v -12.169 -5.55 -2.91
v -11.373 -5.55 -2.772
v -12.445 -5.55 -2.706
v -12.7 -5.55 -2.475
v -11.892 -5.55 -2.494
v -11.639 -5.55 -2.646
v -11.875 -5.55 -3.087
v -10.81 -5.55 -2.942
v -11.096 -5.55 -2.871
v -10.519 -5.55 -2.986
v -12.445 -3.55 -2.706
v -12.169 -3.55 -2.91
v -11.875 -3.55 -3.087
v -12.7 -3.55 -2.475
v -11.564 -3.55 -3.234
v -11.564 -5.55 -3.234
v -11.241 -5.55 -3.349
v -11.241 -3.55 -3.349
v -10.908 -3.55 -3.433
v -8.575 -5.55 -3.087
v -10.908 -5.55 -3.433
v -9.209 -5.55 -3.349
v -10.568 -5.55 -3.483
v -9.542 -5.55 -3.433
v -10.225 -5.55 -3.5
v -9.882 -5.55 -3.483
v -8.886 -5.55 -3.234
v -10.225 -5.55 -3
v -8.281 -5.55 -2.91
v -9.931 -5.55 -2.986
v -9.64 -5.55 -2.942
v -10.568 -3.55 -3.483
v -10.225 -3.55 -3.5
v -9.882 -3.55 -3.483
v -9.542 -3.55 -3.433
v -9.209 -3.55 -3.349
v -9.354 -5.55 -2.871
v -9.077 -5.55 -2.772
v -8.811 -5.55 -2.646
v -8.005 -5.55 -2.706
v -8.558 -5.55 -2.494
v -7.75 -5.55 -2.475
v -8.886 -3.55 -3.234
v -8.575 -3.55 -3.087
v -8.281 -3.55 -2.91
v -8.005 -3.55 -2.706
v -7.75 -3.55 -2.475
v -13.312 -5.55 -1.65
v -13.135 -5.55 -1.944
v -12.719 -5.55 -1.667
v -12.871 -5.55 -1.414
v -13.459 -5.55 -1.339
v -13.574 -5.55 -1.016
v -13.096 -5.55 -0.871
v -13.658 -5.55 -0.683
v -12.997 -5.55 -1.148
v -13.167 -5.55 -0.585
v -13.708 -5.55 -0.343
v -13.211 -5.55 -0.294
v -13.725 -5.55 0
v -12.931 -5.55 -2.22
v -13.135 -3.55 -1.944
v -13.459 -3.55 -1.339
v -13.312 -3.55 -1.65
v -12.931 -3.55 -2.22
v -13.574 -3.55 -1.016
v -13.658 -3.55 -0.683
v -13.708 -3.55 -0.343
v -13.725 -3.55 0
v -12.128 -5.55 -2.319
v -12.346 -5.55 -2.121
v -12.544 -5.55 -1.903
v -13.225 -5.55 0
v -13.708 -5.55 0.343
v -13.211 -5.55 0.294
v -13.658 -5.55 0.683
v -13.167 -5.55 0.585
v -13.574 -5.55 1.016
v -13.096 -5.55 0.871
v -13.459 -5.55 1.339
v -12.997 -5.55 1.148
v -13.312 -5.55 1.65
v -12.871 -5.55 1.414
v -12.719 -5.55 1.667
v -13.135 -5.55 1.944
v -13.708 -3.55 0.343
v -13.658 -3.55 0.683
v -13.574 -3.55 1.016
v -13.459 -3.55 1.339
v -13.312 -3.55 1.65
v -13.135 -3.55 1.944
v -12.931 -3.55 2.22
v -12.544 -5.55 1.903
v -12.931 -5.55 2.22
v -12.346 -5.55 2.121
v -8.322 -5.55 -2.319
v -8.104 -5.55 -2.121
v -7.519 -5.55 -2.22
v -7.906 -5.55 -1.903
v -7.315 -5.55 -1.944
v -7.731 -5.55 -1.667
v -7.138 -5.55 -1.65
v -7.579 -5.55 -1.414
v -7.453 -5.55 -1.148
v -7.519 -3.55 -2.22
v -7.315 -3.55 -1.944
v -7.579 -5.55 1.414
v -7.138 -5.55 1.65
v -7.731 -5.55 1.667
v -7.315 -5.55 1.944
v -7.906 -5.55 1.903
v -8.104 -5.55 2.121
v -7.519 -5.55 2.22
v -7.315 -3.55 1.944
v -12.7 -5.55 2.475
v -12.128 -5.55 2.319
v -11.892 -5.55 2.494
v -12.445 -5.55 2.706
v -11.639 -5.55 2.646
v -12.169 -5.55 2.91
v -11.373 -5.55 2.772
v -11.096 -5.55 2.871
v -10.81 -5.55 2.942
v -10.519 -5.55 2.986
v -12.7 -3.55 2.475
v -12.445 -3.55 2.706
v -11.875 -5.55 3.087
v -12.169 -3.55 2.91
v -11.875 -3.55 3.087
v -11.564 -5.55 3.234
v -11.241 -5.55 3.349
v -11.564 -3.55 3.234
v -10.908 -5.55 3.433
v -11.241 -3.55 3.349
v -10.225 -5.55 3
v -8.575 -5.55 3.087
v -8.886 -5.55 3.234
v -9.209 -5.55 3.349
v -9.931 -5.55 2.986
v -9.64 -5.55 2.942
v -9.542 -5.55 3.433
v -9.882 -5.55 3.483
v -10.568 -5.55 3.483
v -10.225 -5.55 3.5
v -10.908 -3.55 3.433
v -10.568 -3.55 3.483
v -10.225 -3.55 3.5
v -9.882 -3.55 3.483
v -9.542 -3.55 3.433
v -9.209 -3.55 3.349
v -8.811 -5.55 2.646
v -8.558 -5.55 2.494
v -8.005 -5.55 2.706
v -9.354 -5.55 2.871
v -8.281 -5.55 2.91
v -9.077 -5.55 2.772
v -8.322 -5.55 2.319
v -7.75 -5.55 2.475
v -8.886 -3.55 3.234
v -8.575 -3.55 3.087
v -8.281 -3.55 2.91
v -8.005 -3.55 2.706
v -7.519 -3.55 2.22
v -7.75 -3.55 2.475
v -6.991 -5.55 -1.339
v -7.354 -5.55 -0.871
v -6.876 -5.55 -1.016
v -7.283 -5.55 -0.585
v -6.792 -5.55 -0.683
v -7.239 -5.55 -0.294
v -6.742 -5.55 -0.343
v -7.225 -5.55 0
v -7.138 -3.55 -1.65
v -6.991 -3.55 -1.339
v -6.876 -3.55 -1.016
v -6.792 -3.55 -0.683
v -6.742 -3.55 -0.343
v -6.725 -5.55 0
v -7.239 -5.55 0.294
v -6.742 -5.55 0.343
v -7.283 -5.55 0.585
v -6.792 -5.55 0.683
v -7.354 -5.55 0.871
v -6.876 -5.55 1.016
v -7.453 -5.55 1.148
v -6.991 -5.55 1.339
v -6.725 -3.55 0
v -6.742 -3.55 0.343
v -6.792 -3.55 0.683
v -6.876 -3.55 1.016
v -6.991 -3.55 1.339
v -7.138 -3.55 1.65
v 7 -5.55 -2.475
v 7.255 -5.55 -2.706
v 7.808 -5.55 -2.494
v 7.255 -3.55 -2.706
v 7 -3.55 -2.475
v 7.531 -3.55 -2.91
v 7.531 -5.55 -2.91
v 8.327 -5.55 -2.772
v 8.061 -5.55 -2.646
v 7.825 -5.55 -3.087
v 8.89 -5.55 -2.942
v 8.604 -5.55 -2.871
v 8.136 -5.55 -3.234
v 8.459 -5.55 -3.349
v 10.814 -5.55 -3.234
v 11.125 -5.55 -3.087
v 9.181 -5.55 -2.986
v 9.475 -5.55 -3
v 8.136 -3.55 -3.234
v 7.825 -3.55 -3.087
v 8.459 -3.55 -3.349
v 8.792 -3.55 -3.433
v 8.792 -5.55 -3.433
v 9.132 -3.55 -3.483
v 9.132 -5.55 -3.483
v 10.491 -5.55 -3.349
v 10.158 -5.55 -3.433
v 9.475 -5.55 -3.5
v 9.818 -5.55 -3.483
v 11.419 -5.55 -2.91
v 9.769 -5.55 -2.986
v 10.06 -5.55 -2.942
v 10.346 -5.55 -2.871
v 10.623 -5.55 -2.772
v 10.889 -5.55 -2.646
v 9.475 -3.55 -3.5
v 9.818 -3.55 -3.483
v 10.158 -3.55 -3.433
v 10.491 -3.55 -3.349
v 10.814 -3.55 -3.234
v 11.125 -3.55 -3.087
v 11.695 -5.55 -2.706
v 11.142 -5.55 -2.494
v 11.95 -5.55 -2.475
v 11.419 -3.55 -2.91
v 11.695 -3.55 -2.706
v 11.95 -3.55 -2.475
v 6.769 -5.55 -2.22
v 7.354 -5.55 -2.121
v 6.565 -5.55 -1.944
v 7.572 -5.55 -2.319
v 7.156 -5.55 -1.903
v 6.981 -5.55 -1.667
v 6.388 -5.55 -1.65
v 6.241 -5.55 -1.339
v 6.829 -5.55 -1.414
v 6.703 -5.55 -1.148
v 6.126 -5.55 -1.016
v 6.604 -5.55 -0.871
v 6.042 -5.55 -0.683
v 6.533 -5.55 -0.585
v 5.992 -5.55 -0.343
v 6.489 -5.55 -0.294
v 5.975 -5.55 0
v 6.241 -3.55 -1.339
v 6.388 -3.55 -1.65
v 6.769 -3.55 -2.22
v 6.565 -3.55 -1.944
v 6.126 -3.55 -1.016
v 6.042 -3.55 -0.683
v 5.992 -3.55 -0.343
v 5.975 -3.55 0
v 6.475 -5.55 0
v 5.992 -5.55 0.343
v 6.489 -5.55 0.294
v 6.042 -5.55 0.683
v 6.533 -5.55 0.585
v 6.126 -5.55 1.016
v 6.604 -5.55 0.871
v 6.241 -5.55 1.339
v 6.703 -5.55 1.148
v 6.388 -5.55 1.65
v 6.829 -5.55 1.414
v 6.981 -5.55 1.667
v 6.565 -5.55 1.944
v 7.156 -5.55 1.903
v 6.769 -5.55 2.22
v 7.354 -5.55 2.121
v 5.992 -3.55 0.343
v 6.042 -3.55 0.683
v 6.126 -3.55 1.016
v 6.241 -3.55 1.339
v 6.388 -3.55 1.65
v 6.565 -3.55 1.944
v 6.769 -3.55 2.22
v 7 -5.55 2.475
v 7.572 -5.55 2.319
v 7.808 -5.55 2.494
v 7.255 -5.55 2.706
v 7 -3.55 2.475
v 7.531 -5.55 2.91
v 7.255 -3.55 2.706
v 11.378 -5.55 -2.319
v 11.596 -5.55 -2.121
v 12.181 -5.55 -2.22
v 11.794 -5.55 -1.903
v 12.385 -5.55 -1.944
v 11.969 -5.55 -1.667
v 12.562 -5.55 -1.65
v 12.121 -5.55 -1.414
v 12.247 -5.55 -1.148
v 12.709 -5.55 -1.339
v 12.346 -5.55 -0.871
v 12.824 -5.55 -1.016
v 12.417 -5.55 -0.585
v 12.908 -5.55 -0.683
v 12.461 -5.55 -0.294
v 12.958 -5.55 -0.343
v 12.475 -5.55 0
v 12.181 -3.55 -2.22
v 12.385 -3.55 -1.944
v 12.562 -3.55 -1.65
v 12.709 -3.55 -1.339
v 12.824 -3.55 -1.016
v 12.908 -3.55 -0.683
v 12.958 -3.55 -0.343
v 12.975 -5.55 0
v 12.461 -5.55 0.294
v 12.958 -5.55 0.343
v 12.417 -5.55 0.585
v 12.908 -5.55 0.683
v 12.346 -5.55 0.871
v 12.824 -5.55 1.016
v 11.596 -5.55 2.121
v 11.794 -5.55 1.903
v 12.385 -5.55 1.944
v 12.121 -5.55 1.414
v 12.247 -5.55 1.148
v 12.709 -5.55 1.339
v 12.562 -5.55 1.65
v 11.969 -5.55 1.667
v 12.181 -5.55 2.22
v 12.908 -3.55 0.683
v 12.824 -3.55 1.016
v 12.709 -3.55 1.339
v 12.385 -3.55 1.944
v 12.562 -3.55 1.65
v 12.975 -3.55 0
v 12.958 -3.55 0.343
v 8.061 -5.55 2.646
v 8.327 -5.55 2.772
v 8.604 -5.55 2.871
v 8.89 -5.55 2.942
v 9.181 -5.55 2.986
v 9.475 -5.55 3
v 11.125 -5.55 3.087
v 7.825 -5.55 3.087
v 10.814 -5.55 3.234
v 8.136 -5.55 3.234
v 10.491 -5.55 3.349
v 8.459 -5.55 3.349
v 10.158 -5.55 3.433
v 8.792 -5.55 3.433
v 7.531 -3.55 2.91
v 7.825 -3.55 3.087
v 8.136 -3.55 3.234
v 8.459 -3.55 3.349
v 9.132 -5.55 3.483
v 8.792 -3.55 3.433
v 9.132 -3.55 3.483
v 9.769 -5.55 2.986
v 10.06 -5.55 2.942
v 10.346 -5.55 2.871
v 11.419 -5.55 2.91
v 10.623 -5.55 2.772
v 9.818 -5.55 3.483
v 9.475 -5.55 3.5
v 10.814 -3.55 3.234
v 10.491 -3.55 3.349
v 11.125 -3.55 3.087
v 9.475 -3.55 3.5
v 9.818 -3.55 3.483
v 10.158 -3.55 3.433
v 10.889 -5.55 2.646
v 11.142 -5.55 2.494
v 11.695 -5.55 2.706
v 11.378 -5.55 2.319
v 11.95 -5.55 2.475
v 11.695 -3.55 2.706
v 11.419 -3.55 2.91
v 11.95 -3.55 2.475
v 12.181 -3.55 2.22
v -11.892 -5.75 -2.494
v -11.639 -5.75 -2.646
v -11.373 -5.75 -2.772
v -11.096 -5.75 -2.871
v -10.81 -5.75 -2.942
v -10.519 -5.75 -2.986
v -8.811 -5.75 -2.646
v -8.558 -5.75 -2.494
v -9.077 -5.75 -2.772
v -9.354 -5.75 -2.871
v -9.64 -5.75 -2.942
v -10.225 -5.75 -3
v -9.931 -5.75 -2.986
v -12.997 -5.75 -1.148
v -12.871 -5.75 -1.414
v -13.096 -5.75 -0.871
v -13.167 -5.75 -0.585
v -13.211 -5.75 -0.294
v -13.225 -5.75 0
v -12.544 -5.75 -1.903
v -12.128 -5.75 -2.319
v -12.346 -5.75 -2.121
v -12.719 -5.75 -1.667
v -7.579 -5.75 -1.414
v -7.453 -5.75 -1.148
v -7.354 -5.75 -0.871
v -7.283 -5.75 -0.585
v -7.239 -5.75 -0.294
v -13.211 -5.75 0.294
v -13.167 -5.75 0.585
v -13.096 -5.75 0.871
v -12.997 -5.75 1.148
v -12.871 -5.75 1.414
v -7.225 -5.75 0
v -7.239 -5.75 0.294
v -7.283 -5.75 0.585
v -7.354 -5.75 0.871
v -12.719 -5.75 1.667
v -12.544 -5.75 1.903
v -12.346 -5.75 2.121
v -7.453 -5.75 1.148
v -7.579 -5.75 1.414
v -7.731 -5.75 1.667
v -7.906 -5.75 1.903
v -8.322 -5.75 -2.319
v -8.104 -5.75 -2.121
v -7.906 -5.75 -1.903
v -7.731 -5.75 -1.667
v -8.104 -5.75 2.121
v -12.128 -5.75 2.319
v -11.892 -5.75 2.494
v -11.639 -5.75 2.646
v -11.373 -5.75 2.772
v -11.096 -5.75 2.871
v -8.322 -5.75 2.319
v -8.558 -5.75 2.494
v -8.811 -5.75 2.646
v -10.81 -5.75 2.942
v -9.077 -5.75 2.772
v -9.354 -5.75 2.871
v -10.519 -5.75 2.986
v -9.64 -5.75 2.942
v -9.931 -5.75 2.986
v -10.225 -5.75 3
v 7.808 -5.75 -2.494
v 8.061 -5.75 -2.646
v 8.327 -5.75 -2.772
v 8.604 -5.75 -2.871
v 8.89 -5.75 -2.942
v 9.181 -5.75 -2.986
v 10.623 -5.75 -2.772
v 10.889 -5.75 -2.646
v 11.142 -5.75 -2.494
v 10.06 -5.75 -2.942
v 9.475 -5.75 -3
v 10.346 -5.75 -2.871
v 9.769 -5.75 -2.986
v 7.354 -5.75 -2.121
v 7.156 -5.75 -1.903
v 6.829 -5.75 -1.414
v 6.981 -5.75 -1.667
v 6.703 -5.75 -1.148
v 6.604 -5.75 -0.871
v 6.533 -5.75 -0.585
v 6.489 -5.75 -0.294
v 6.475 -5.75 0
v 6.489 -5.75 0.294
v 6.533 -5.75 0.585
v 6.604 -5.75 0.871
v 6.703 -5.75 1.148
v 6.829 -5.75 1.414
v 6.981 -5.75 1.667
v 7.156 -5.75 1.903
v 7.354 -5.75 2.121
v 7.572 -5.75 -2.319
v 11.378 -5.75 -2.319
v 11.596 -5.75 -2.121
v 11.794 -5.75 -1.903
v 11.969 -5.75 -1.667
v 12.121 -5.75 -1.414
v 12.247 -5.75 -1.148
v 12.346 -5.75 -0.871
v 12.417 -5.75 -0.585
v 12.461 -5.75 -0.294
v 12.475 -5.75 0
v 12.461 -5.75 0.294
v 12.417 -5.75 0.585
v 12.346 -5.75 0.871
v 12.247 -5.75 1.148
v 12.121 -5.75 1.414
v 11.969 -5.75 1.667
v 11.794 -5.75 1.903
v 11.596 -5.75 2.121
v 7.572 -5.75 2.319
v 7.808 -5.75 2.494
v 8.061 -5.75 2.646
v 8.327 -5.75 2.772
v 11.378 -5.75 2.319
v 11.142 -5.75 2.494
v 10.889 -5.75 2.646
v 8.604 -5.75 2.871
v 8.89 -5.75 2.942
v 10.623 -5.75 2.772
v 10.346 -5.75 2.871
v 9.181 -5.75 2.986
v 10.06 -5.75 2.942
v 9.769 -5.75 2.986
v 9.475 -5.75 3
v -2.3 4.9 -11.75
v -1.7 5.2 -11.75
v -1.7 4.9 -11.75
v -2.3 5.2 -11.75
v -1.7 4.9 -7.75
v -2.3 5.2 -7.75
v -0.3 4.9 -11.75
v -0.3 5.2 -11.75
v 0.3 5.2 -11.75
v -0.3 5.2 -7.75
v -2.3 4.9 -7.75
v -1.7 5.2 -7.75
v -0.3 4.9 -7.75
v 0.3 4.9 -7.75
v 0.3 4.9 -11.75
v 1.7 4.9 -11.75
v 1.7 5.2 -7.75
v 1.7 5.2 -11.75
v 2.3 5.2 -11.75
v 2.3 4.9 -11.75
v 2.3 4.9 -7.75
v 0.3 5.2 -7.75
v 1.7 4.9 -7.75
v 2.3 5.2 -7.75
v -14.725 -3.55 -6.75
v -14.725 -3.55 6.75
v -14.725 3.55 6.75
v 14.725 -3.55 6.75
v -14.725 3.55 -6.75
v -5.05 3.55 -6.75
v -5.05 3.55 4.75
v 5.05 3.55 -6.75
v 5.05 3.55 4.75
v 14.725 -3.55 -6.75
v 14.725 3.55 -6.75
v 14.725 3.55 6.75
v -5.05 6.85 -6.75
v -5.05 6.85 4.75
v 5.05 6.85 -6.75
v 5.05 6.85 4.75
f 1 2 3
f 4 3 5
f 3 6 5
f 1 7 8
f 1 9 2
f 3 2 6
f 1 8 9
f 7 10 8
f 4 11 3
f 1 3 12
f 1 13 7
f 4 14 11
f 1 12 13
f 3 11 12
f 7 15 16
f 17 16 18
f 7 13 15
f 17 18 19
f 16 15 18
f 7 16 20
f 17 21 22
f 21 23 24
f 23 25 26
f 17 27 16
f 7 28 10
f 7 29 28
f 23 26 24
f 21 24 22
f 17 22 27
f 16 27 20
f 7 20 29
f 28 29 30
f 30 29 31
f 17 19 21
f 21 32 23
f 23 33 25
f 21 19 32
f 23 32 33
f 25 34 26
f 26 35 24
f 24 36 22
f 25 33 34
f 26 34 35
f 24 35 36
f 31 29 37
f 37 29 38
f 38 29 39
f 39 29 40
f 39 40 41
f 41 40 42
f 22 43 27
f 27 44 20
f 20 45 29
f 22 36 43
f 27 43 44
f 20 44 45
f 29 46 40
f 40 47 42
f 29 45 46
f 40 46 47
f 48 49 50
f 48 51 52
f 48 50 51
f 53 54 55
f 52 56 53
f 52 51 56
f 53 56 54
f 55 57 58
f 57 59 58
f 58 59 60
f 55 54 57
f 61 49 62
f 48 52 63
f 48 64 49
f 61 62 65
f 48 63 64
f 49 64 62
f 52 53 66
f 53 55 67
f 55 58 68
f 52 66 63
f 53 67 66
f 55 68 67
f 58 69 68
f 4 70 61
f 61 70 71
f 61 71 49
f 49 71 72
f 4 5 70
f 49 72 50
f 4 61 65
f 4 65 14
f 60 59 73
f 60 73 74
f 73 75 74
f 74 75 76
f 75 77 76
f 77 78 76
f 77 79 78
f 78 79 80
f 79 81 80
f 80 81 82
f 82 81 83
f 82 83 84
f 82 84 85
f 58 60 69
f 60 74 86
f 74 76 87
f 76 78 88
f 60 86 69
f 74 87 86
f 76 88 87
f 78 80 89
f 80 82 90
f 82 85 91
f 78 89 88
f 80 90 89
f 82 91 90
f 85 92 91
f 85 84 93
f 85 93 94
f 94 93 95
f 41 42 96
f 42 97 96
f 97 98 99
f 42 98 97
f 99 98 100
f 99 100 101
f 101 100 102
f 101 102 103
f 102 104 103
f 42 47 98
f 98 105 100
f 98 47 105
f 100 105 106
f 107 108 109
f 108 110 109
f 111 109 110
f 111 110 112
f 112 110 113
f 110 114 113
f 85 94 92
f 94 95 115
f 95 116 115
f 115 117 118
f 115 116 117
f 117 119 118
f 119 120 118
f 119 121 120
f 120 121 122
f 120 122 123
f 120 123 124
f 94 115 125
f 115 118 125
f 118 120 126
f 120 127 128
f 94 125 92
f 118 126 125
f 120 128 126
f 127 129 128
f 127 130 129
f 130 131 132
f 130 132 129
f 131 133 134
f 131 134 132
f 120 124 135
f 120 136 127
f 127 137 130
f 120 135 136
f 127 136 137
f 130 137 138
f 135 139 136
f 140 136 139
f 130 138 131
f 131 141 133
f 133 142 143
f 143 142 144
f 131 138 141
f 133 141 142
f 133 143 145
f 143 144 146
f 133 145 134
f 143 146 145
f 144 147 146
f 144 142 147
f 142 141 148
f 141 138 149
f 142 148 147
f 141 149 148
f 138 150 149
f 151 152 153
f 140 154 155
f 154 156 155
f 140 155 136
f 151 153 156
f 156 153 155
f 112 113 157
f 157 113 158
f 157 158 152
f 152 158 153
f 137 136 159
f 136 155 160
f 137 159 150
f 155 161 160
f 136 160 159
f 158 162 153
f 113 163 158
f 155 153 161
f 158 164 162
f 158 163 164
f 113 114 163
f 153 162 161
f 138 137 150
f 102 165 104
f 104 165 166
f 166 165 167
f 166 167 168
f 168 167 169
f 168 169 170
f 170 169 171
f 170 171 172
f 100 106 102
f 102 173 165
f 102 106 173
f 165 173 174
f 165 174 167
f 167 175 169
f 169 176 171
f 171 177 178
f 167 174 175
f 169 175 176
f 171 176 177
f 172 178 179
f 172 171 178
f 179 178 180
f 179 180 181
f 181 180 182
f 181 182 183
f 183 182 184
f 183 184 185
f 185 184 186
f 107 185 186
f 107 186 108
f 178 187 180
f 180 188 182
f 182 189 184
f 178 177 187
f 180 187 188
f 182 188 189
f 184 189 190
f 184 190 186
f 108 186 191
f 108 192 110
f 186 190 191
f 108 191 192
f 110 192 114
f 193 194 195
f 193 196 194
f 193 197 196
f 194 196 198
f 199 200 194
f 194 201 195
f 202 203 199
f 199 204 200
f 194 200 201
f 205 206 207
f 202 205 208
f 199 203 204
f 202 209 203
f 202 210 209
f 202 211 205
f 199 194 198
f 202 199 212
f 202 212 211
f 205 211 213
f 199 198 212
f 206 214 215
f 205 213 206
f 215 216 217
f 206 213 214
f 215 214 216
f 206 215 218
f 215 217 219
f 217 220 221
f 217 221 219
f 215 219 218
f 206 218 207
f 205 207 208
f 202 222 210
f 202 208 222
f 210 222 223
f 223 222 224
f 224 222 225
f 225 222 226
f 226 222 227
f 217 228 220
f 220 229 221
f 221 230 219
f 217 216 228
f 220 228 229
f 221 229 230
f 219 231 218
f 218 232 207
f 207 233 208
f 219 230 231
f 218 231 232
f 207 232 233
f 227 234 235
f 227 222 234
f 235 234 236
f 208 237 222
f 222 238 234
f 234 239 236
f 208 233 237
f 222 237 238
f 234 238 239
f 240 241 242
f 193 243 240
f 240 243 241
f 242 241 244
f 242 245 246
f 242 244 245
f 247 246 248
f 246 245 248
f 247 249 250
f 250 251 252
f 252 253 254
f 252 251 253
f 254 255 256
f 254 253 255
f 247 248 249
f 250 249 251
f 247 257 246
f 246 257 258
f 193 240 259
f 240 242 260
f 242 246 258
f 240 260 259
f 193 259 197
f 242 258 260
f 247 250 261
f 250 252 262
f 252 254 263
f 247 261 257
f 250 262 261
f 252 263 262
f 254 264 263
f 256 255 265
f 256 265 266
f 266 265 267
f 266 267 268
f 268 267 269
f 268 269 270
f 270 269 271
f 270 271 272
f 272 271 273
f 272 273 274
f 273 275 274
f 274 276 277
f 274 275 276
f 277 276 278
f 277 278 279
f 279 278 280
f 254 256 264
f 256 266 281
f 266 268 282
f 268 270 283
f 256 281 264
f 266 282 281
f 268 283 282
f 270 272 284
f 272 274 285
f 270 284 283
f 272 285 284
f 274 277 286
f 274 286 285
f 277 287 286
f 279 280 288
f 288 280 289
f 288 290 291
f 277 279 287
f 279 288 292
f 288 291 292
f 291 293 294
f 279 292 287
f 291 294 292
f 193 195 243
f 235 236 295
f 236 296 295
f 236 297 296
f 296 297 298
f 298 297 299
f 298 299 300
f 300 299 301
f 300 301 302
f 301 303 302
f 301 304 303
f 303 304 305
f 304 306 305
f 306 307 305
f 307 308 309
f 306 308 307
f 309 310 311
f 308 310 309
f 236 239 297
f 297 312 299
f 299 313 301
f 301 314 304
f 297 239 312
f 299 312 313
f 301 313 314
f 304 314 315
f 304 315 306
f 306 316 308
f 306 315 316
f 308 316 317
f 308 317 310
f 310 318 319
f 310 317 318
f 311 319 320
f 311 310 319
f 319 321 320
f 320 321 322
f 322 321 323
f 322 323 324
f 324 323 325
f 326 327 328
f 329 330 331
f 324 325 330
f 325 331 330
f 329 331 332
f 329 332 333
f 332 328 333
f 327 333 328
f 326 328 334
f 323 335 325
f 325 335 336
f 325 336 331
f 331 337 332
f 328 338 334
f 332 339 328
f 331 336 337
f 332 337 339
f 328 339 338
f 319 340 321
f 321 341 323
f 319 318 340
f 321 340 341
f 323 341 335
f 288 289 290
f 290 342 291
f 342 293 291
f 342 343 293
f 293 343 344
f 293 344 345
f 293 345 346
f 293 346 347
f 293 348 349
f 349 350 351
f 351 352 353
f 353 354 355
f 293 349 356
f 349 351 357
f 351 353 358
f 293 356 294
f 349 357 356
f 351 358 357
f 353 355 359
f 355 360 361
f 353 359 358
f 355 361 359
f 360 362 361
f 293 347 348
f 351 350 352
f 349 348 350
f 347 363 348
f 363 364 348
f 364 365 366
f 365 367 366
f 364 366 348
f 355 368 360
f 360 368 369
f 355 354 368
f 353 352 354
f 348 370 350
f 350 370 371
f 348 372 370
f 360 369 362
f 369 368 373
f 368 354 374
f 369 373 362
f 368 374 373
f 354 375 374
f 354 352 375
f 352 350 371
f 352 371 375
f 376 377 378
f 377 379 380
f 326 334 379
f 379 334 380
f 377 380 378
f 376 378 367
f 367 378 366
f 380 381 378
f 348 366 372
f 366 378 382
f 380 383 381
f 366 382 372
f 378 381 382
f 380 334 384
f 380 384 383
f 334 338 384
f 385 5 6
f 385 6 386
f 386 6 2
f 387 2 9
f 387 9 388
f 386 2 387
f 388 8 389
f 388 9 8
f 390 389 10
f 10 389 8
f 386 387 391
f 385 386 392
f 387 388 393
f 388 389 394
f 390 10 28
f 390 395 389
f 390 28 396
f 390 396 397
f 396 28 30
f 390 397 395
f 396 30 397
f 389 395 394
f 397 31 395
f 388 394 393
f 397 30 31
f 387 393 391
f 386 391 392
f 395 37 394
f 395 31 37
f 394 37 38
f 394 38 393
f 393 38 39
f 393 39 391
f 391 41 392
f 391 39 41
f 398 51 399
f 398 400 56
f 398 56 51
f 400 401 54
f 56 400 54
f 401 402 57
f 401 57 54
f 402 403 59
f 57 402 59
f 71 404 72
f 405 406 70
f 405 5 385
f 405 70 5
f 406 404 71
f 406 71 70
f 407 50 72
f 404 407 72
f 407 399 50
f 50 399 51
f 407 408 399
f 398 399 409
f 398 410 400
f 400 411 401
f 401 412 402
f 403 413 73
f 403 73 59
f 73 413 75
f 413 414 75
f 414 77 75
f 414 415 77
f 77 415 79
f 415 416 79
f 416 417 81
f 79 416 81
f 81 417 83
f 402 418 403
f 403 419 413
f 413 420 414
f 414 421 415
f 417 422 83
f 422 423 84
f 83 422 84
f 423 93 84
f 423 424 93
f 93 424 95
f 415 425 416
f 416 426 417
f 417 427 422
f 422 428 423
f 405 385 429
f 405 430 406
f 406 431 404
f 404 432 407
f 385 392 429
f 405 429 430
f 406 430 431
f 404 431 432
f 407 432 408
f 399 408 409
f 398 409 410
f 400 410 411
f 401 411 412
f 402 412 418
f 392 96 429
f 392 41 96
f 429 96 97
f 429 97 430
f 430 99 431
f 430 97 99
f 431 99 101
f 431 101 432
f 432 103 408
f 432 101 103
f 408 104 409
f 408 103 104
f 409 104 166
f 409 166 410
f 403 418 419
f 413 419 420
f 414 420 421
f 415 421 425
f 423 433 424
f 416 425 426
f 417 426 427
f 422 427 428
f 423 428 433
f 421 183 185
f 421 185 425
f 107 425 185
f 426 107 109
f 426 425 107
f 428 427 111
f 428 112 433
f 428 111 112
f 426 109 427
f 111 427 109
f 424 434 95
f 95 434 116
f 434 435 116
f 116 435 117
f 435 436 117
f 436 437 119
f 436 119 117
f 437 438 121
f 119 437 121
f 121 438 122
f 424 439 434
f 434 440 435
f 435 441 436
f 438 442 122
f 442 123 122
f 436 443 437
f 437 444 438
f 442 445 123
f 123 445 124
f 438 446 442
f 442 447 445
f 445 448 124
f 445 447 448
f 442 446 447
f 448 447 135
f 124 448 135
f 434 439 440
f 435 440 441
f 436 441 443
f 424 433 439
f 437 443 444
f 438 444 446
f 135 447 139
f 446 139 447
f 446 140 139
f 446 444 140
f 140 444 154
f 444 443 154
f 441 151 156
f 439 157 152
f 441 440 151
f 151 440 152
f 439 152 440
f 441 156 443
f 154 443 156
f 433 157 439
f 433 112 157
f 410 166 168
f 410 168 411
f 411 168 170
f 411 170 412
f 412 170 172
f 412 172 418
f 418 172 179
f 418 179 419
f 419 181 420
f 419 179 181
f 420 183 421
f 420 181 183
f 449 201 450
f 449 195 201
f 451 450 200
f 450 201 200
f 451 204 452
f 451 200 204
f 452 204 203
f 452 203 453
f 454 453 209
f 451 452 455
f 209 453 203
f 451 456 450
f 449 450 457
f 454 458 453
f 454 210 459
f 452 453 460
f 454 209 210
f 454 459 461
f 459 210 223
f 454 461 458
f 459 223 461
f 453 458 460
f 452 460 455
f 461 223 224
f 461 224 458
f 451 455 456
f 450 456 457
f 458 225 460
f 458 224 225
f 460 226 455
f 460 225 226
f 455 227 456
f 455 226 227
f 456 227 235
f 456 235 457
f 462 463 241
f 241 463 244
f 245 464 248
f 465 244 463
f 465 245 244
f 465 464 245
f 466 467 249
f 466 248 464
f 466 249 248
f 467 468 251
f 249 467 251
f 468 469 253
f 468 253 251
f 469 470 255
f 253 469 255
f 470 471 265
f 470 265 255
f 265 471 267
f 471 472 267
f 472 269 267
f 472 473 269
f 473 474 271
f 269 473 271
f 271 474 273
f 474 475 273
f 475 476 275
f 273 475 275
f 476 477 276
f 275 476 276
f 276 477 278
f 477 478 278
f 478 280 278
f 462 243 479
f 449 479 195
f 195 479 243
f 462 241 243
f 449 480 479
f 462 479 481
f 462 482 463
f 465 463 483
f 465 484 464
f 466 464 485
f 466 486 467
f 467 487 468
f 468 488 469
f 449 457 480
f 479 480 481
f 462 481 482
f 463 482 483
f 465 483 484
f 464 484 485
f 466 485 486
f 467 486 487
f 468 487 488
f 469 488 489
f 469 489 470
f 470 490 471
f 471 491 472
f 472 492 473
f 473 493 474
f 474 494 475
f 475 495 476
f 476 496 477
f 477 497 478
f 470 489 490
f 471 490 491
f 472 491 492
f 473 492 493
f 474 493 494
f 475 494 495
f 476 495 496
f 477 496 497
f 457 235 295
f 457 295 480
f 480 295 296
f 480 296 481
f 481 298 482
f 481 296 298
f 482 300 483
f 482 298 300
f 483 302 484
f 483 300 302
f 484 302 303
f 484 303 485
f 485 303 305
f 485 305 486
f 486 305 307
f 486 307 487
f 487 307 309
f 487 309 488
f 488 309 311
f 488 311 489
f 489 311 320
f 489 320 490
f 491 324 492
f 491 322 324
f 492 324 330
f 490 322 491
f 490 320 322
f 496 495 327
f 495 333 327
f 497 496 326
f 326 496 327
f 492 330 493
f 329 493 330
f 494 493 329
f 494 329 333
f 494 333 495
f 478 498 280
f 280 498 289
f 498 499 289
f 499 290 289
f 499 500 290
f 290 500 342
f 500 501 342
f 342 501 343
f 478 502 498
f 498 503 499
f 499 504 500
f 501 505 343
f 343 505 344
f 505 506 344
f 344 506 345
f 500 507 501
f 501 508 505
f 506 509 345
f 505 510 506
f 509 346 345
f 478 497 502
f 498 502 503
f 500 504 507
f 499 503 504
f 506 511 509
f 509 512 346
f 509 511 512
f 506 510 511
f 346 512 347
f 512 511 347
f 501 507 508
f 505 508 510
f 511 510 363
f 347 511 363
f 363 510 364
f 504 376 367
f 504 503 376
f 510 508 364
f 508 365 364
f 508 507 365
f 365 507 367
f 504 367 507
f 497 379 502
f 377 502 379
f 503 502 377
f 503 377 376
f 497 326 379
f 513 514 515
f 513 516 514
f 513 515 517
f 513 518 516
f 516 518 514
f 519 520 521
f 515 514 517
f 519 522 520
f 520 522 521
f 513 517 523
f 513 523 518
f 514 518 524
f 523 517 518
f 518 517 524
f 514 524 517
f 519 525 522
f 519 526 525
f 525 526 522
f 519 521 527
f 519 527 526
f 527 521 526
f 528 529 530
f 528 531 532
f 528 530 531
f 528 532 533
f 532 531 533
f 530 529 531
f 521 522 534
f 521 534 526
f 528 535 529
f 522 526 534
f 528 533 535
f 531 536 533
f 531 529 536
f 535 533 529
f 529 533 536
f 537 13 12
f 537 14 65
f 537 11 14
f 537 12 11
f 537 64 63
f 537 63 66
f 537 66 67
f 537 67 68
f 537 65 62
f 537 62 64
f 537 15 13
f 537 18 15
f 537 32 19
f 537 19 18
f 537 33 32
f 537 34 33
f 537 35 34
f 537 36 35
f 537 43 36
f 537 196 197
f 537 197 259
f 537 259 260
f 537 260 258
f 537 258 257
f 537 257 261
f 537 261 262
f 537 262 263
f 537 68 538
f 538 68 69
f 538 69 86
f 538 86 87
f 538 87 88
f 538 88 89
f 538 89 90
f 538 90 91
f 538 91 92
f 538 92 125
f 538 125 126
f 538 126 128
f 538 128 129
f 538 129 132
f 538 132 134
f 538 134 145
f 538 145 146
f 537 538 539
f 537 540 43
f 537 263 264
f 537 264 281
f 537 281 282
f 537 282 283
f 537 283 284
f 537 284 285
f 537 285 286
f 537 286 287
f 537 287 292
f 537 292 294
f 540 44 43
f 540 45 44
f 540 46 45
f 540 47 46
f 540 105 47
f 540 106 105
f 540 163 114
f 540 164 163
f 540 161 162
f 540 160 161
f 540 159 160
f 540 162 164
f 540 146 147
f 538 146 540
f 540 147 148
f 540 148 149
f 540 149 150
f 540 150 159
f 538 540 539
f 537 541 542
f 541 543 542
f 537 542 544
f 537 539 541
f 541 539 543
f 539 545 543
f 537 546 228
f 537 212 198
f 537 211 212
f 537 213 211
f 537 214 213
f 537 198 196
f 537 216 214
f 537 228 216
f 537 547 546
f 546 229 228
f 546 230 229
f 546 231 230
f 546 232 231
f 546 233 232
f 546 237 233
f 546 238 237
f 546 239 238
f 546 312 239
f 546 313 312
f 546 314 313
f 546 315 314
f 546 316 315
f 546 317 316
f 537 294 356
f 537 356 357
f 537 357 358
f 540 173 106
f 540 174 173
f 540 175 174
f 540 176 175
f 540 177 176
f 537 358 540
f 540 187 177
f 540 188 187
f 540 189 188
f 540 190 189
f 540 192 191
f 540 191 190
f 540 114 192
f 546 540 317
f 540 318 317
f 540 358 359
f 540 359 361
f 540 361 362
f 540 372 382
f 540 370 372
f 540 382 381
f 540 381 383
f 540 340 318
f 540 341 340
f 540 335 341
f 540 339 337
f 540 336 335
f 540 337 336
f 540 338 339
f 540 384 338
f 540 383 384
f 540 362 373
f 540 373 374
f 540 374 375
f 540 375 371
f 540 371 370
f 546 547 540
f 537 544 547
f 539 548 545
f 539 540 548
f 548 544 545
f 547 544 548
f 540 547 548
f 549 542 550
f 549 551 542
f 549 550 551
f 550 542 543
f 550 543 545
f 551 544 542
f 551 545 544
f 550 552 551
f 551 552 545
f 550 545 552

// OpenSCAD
// Sharp GP2Y0D413K0F 距離センサ 3Dモデル
// 単位: mm
// 座標系: 本体中心を原点 (0,0,0) とし、取付面(PWB/コネクタ側)を -Z に向ける。
// データシートに基づく外形寸法:
// 全幅: 29.45 mm
// 全高: 13.5 mm (または側面図の 18.9 - PWB等考慮) -> 本体の高さを 13.5 mm とする
// 厚み: 7.1 mm (レンズ部含む最大厚み)

$fn = 64;

module gp2y0d413k0f() {
    // 全体的な位置調整 (本体の中心を原点にするため、各パーツをオフセット)
    // X方向: 全長 29.45, 中心 = 0 -> -29.45/2 から 29.45/2
    // Y方向: 厚み 7.1 (レンズ側 ~4.2, 背面 ~2.9)、中心を Y=0 付近に調整
    // Z方向: 高さ 13.5, 中心 = 0 -> -13.5/2 から 13.5/2
    
    translate([0, 0, 0]) {
        
        // 1. メインボディケース (Carbonic ABS)
        // 寸法およそ: 29.45 x 7.1 x 13.5
        color("DimGray")
        translate([-29.45/2, -7.1/2, -13.5/2])
            cube([29.45, 7.1, 13.5]);

        // 2. レンズ部分 (前面に突き出た2つの円筒状レンズ部)
        // データシートより、左側がLight emitter(LED), 右側がLight detector(PSD)
        // 中心間隔や位置: 
        // 全幅 29.45 のうち、左端から最初のレンズ中心まで 4.5、レンズ間隔 19.7
        // X座標 (中心基準):
        // 左レンズ (LED): -29.45/2 + 4.5 = -14.725 + 4.5 = -10.225
        // 右レンズ (PSD): -10.225 + 19.7 = 9.475
        
        // 前面突起 (Lens case)
        color("Black") {
            // LED側レンズ (丸型突起)
            translate([-10.225, -7.1/2 - 2, 0])
                rotate([-90, 0, 0])
                    cylinder(r=3.5, h=2);
            
            // PSD側レンズ (角型/丸型混ざった形状を簡易的に表現)
            translate([9.475, -7.1/2 - 2, 0])
                rotate([-90, 0, 0])
                    cylinder(r=3.5, h=2);
        }

        // レンズ表面 (アクリル樹脂、透明感のある赤/黒っぽさを表現)
        color("DarkRed", 0.8) {
            translate([-10.225, -7.1/2 - 2.2, 0])
                rotate([-90, 0, 0])
                    cylinder(r=3.0, h=2.2);
            
            translate([9.475, -7.1/2 - 2.2, 0])
                rotate([-90, 0, 0])
                    cylinder(r=3.0, h=2.2);
        }

        // 3. 背面コネクタ部 & PWB (Paper phenol / Connectors)
        // コネクタ幅: 10.1 mm, 背面中央に配置
        color("White")
        translate([-10.1/2, 7.1/2, -13.5/2])
            cube([10.1, 3.3, 13.5 - 2]);

        // 4. リード端子 (3ピン)
        // コネクタ内部から下部(-Z方向)へ突き出るピン
        color("Silver") {
            for (i = [-1, 0, 1]) {
                translate([i * 2.0, 7.1/2 + 1.5, -13.5/2 - 3])
                    cube([0.6, 0.3, 4], center=true);
            }
        }
    }
}

// モジュール呼び出し
gp2y0d413k0f();
